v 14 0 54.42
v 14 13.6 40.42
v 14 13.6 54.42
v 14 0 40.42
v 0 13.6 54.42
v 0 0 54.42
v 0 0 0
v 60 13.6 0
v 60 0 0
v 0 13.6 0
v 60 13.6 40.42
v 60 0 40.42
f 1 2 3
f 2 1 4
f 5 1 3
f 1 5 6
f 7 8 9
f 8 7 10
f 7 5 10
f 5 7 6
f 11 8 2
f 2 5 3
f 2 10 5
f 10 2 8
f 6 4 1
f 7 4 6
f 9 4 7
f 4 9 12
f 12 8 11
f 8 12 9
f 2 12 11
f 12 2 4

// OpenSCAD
/* doodle-meta {"version":1,"parameters":{"width":{"label":"Overall width","description":"Changes the body width","unit":"mm","feature":"body_width"},"height":{"label":"Overall height","description":"Changes the body height","unit":"mm","feature":"body_height"},"depth":{"label":"Overall depth","description":"Changes the body depth","unit":"mm","feature":"body_depth"},"leg_thickness":{"label":"Leg thickness","description":"Changes the thickness of the L-shape legs","unit":"mm","feature":"leg_thickness"}},"features":{"body_width":{"kind":"dimension","axis":"x","label":"Overall width"},"body_height":{"kind":"dimension","axis":"z","label":"Overall height"},"body_depth":{"kind":"dimension","axis":"y","label":"Overall depth"},"leg_thickness":{"kind":"region","label":"Leg thickness","min":[0,0,0],"max":[{"parameter":"leg_thickness","scale":1,"offset":0},{"parameter":"depth","scale":1,"offset":0},{"parameter":"height","scale":1,"offset":0}]}}} */

// Parameters
width = 60.0;
height = 54.42;
depth = 13.6;
leg_thickness = 14.0;

// Derived dimensions
arm_length = width - leg_thickness;
arm_height = height - leg_thickness;

// Main body construction
// The L-shape is formed by the union of a vertical leg and a horizontal arm.
// Vertical leg: spans full height, located at X=0 to leg_thickness.
// Horizontal arm: spans remaining width, located at Z=0 to arm_height.

union() {
    // Vertical Leg (Mounting Face)
    // Extends from X=0 to leg_thickness, Y=0 to depth, Z=0 to height
    translate([0, 0, 0])
        cube([leg_thickness, depth, height]);
        
    // Horizontal Arm (Hook)
    // Extends from X=leg_thickness to width, Y=0 to depth, Z=0 to arm_height
    translate([leg_thickness, 0, 0])
        cube([arm_length, depth, arm_height]);
}
